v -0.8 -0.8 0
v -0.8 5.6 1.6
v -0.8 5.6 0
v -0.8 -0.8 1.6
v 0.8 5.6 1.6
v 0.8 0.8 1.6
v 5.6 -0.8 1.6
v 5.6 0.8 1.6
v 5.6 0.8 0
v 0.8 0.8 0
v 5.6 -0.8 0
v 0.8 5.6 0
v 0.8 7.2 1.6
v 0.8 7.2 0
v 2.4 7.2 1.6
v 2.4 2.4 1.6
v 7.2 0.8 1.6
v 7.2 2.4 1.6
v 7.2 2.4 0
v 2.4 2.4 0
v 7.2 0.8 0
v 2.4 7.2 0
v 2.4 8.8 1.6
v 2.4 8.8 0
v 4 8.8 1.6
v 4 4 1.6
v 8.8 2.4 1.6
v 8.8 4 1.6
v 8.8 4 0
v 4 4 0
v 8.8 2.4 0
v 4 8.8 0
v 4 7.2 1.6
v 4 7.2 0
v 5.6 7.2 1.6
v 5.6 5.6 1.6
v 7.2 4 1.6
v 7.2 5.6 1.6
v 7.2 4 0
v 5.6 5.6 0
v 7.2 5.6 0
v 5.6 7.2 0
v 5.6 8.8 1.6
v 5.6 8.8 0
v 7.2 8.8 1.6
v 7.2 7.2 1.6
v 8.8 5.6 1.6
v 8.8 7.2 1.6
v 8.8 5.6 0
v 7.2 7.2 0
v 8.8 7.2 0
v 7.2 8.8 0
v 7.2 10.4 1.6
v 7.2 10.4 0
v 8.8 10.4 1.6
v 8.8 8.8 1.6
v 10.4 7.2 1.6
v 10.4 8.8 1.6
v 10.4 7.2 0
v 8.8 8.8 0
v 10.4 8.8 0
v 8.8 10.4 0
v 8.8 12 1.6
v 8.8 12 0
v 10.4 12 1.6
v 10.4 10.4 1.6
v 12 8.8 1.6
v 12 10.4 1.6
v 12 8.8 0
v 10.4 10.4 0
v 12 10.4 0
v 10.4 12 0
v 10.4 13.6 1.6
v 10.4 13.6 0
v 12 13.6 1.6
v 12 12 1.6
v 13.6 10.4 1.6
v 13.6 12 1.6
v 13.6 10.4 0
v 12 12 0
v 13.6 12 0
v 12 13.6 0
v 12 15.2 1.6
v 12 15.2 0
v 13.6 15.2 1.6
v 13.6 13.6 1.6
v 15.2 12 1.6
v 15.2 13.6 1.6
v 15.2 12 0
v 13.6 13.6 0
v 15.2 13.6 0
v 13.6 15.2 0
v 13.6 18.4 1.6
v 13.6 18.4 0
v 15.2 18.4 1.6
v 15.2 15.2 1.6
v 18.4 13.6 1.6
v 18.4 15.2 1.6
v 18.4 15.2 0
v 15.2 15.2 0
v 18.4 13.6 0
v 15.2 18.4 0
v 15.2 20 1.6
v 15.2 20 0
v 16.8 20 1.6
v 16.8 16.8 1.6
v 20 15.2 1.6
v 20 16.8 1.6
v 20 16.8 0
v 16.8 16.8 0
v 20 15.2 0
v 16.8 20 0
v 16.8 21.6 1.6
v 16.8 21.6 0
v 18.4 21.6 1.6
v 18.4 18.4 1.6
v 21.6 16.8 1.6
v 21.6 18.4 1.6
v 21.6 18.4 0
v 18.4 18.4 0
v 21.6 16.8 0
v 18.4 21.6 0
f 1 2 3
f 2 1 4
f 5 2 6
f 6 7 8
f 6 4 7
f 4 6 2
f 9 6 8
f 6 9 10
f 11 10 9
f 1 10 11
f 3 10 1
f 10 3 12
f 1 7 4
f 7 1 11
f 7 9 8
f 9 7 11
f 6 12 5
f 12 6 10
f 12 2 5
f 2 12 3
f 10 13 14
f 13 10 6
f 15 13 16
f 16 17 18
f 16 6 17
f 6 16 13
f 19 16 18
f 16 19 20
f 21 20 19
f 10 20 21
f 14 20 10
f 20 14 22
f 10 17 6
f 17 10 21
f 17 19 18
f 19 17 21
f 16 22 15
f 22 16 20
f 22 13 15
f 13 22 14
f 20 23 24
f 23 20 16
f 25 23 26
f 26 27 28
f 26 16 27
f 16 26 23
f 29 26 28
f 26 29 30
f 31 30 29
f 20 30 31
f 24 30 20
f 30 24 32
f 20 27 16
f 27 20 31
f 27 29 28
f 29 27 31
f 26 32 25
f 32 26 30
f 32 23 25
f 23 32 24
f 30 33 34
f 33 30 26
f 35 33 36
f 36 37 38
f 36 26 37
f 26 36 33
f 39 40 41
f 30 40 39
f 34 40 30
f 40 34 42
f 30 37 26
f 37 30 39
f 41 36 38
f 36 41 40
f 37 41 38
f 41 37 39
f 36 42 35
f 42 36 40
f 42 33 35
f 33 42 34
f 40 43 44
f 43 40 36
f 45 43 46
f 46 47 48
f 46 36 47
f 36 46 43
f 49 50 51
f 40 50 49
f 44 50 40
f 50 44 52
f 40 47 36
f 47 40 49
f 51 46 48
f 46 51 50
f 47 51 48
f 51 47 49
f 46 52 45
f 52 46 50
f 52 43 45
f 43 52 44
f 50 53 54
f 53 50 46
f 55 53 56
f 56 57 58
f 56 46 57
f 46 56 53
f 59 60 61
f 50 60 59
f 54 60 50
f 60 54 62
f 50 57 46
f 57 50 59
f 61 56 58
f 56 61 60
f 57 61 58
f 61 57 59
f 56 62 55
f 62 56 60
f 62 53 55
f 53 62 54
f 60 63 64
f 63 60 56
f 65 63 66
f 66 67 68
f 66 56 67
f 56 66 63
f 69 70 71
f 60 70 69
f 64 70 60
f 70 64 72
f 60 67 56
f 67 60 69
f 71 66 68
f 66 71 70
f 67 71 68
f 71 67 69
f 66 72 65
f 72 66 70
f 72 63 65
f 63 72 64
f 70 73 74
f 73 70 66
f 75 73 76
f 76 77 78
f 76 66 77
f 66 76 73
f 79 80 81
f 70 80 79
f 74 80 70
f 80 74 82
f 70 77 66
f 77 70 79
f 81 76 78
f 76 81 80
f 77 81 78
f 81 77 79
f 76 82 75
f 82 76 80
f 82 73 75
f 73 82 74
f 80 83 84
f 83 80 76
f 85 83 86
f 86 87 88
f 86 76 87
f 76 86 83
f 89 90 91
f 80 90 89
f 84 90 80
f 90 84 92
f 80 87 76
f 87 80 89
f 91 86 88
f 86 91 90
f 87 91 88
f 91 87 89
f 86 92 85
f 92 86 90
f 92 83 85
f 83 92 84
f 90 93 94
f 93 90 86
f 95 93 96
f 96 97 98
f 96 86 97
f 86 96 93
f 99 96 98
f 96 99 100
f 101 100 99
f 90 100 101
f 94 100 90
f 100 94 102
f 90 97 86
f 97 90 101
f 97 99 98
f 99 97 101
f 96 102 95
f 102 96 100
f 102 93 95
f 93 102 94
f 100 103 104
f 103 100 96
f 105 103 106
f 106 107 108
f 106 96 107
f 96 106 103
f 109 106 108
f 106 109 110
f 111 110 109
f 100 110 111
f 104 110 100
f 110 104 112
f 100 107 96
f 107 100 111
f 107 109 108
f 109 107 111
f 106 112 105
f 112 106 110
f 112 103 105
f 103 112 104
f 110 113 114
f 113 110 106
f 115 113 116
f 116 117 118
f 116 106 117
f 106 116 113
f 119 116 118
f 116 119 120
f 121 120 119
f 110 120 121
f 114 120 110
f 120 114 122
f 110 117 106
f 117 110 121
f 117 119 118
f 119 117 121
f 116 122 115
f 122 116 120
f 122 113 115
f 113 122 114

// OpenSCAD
/**
 * Martin + Linus Egli
 * 2023-05-05
 */

module mcblock(xsize = 1.6, ysize = 1.6, zsize = 1.6) {
    translate([-xsize/2, -ysize/2, 0])
    cube([xsize, ysize, zsize]);
}

module mcarrow(xsize = 1.6, ysize = 1.6, zsize = 1.6) {
    // origin: tip of arrow
    for(m = [0:1:2]) {
        translate([m*xsize, m*ysize, 0*zsize])
        for(n = [0:1:3]) {
            translate([n*xsize, 0*ysize, 0*zsize])
            mcblock();
        }
        translate([m*xsize, m*ysize, 0*zsize])
        for(n = [0:1:3]) {
            translate([0*xsize, n*ysize, 0*zsize])
            mcblock();
        }
    }
    for(m = [3:1:8]) {
        translate([m*xsize, m*ysize, 0*zsize])
        for(n = [0:1:1]) {
            translate([n*xsize, 0*ysize, 0*zsize])
            mcblock();
        }
        translate([m*xsize, m*ysize, 0*zsize])
        for(n = [0:1:1]) {
            translate([0*xsize, n*ysize, 0*zsize])
            mcblock();
        }
    }
    for(m = [9:1:11]) {
        translate([m*xsize, m*ysize, 0*zsize])
        for(n = [0:1:2]) {
            translate([n*xsize, 0*ysize, 0*zsize])
            mcblock();
        }
        translate([m*xsize, m*ysize, 0*zsize])
        for(n = [0:1:2]) {
            translate([0*xsize, n*ysize, 0*zsize])
            mcblock();
        }
    }
}

mcarrow();
